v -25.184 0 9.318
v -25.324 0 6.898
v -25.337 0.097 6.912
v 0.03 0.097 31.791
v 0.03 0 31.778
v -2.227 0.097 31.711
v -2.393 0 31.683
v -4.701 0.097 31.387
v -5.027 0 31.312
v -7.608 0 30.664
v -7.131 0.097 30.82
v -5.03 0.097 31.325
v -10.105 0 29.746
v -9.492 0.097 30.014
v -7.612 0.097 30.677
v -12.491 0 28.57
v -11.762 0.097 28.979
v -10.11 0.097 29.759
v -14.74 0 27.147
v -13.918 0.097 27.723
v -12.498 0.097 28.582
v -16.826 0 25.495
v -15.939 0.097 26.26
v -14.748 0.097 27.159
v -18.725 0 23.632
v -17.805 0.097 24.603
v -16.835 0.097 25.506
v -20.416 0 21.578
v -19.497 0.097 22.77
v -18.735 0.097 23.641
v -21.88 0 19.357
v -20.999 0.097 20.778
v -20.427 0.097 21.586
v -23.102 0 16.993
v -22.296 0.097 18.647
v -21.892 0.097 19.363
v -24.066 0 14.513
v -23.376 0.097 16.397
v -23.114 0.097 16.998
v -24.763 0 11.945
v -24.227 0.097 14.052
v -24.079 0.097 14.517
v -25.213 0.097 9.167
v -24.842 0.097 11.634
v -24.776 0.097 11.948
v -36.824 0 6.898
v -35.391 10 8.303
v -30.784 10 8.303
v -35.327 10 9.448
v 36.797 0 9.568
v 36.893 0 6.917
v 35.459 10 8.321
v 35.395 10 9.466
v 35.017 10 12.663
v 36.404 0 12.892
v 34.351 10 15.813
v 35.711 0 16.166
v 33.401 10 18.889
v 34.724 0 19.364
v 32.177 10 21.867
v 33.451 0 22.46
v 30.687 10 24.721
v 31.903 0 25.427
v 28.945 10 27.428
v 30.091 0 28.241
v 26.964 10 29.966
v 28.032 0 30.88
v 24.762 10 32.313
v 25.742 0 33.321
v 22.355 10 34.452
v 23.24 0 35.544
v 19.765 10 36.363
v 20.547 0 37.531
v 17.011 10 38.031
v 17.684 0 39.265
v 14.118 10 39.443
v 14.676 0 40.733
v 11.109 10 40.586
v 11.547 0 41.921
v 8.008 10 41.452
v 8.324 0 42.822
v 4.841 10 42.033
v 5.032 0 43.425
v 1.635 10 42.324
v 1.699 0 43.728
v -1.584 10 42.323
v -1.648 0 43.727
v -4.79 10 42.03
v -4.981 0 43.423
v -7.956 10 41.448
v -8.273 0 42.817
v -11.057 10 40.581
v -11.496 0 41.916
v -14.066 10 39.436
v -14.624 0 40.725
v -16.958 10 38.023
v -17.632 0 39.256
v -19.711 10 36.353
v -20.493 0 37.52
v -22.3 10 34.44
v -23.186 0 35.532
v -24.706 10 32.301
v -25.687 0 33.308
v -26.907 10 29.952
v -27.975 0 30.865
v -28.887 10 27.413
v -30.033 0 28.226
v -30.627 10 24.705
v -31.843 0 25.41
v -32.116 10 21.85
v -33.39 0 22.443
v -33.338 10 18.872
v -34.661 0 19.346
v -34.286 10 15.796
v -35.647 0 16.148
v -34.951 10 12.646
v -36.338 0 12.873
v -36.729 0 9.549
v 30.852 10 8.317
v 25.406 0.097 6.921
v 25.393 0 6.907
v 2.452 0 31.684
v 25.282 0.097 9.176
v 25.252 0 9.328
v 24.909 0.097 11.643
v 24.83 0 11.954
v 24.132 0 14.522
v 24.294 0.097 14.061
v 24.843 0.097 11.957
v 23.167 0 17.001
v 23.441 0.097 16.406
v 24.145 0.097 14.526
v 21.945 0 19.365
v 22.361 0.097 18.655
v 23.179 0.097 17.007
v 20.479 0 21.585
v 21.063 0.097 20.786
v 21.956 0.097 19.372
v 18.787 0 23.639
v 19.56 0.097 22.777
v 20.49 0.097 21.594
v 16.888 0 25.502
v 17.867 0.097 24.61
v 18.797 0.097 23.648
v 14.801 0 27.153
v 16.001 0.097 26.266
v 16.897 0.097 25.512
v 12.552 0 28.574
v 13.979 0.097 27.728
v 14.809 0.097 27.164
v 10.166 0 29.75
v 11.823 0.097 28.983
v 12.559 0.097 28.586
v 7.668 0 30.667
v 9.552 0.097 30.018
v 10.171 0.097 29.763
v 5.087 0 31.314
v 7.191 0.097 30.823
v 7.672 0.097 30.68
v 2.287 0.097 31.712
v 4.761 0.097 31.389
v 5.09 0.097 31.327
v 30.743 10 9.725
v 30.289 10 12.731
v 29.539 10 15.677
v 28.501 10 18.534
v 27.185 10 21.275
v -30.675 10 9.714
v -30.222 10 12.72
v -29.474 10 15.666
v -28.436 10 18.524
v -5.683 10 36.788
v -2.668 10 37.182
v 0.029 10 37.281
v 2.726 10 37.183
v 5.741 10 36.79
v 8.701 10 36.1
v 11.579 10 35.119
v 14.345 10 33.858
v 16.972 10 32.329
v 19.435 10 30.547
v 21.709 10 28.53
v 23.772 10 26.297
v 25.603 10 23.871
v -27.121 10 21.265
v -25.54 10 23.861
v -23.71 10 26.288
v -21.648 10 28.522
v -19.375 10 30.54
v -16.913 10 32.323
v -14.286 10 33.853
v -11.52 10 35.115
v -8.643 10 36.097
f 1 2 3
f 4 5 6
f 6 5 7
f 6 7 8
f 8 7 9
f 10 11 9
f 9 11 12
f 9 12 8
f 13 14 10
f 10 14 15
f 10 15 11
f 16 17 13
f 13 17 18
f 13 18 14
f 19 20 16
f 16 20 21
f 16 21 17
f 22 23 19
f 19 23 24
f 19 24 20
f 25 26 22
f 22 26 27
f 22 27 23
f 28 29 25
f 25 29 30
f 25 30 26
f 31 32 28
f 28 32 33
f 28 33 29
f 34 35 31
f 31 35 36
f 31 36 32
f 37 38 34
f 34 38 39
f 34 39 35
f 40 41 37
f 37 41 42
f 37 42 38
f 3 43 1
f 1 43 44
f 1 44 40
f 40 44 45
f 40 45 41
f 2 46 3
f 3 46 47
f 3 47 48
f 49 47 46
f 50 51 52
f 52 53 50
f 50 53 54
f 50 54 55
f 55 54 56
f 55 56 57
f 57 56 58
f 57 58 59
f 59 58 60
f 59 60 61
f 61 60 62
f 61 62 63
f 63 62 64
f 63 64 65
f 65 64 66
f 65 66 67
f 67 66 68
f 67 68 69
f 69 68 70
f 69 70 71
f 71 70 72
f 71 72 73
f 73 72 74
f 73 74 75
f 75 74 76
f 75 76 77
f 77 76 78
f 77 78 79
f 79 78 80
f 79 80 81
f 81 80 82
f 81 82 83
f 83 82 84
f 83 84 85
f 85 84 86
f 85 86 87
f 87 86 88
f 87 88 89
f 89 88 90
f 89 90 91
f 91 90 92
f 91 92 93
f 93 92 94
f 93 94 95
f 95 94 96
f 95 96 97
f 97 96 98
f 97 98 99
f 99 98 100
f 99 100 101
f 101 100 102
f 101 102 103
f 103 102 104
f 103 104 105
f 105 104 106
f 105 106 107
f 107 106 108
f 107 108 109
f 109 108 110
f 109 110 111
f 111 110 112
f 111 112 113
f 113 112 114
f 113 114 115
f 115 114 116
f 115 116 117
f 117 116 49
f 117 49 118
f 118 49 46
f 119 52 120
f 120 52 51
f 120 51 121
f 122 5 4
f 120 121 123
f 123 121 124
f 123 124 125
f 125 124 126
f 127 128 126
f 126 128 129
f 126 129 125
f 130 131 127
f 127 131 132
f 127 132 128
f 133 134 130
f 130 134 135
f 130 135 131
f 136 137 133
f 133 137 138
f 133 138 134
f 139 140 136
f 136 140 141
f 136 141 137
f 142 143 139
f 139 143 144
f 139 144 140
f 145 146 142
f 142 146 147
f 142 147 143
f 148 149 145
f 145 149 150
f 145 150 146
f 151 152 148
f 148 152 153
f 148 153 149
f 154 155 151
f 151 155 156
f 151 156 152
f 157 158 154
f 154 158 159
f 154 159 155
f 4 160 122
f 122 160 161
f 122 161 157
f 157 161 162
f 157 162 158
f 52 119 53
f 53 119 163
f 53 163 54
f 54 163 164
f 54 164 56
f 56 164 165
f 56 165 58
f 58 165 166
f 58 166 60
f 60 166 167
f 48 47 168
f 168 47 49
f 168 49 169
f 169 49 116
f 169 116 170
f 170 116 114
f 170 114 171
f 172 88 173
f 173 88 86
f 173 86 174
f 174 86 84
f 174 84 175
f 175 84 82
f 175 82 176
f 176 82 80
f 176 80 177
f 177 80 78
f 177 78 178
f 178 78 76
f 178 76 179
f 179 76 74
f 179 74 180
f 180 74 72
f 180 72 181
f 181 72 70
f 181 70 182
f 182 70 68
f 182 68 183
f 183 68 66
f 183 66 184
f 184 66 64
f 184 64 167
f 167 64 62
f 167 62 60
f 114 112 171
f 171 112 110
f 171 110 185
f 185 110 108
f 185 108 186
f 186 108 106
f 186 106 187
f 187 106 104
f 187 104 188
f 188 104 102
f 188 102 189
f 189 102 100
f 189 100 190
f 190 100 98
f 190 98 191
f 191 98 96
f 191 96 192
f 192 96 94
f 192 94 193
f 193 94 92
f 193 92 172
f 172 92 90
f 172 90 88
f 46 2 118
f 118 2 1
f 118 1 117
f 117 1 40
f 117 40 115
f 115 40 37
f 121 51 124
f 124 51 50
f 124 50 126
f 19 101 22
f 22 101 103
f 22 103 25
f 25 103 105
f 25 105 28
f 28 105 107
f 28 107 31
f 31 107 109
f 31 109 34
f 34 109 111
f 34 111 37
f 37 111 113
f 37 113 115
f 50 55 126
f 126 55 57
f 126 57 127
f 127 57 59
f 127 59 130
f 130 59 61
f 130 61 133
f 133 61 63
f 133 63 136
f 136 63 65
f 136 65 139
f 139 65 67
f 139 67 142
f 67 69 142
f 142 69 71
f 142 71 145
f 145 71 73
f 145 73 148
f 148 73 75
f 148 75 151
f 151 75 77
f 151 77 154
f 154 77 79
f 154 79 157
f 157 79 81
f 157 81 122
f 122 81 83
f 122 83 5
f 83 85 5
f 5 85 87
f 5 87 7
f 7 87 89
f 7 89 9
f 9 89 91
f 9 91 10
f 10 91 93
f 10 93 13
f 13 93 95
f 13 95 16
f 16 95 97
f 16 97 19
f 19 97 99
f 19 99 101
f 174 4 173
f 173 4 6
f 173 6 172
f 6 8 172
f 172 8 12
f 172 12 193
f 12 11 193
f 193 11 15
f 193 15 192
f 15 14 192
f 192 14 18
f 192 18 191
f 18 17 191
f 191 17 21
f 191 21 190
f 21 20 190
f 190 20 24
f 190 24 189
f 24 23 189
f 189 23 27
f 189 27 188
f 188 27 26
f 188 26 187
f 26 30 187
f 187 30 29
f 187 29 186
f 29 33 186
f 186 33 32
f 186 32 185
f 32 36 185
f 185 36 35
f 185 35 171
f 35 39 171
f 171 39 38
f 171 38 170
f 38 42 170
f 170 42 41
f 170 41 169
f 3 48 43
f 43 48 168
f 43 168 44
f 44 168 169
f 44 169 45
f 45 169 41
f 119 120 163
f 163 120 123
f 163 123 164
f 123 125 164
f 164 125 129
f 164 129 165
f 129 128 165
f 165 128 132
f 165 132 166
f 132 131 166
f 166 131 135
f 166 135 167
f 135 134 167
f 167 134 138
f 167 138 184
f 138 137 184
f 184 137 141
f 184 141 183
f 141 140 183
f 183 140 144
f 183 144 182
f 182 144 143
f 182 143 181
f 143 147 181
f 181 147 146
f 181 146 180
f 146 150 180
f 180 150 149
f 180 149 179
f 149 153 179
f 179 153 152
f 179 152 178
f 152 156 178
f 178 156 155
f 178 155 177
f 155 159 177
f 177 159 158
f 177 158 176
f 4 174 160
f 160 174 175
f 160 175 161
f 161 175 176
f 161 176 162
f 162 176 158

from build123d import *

# Parameters (mm, degrees)
BOSS_EXTRUDE1_DEPTH = 10
BOSS_EXTRUDE1_DRAFT = 8


with BuildPart() as part:
    # Sketch1 → Boss-Extrude1 (with draft: the straight prism first)
    with BuildSketch(Plane(origin=(0, 0, 0), x_dir=(1, 0, 0), z_dir=(0, 1, 0))):
        with BuildLine():
            Line((36.892843318, -6.916769299), (25.392844844, -6.907371064))
            ThreePointArc((25.392844844, -6.907371064), (17.862146893, -24.595305322), (0.029881046, -31.777555993))
            ThreePointArc((0.029881046, -31.777555993), (-17.799721033, -24.588695191), (-25.323861346, -6.897970432))
            Line((-25.323861346, -6.897970432), (-36.823861346, -6.897970432))
            ThreePointArc((-36.823861346, -6.897970432), (0.025091553, -43.765722197), (36.892843318, -6.916769299))
        make_face()
    extrude(amount=BOSS_EXTRUDE1_DEPTH)
    # Boss-Extrude1: the draft: its side faces are tilted about the plane it starts from
    boss_extrude1_sides = [part.faces().sort_by_distance(p)[0] for p in [
        (31.142844081, 5, 6.912070181),
        (17.862146893, 5, 24.595305322),
        (-17.799721033, 5, 24.588695191),
        (-31.073861346, 5, 6.897970432),
        (0.025091553, 5, 43.765722197),
    ]]
    draft(boss_extrude1_sides, Plane(origin=(0, 0, 0), x_dir=(1, 0, 0), z_dir=(0, 1, 0)), BOSS_EXTRUDE1_DRAFT)

    # Chamfer3: read off the stored shape, not the designer's step
    # Chamfer3 outline → Chamfer3 (revolve, cut)
    with BuildSketch(Plane(origin=(-0.207197369, 0, 6.660892016), x_dir=(1, 0, 0), z_dir=(0, 0, 1))):
        Polygon((25.131460191, 10), (25.131460191, 0.097319313), (30.62060573, 10), align=None)
    revolve(axis=Axis((-0.207197369, 0, 6.660892016), (0, 1, 0)), mode=Mode.SUBTRACT)

    # Chamfer3 2 outline → Chamfer3 2 (revolve, cut)
    with BuildSketch(Plane(origin=(0.27627048, 0, 6.66098163), x_dir=(1, 0, 0), z_dir=(0, 0, 1))):
        Polygon((25.295653078, 1.265612408), (25.131460191, 0.097319313), (30.62060573, 10), (25.295653078, 10), align=None)
    revolve(axis=Axis((0.27627048, 0, 6.66098163), (0, 1, 0)), mode=Mode.SUBTRACT)


solid = part.part
